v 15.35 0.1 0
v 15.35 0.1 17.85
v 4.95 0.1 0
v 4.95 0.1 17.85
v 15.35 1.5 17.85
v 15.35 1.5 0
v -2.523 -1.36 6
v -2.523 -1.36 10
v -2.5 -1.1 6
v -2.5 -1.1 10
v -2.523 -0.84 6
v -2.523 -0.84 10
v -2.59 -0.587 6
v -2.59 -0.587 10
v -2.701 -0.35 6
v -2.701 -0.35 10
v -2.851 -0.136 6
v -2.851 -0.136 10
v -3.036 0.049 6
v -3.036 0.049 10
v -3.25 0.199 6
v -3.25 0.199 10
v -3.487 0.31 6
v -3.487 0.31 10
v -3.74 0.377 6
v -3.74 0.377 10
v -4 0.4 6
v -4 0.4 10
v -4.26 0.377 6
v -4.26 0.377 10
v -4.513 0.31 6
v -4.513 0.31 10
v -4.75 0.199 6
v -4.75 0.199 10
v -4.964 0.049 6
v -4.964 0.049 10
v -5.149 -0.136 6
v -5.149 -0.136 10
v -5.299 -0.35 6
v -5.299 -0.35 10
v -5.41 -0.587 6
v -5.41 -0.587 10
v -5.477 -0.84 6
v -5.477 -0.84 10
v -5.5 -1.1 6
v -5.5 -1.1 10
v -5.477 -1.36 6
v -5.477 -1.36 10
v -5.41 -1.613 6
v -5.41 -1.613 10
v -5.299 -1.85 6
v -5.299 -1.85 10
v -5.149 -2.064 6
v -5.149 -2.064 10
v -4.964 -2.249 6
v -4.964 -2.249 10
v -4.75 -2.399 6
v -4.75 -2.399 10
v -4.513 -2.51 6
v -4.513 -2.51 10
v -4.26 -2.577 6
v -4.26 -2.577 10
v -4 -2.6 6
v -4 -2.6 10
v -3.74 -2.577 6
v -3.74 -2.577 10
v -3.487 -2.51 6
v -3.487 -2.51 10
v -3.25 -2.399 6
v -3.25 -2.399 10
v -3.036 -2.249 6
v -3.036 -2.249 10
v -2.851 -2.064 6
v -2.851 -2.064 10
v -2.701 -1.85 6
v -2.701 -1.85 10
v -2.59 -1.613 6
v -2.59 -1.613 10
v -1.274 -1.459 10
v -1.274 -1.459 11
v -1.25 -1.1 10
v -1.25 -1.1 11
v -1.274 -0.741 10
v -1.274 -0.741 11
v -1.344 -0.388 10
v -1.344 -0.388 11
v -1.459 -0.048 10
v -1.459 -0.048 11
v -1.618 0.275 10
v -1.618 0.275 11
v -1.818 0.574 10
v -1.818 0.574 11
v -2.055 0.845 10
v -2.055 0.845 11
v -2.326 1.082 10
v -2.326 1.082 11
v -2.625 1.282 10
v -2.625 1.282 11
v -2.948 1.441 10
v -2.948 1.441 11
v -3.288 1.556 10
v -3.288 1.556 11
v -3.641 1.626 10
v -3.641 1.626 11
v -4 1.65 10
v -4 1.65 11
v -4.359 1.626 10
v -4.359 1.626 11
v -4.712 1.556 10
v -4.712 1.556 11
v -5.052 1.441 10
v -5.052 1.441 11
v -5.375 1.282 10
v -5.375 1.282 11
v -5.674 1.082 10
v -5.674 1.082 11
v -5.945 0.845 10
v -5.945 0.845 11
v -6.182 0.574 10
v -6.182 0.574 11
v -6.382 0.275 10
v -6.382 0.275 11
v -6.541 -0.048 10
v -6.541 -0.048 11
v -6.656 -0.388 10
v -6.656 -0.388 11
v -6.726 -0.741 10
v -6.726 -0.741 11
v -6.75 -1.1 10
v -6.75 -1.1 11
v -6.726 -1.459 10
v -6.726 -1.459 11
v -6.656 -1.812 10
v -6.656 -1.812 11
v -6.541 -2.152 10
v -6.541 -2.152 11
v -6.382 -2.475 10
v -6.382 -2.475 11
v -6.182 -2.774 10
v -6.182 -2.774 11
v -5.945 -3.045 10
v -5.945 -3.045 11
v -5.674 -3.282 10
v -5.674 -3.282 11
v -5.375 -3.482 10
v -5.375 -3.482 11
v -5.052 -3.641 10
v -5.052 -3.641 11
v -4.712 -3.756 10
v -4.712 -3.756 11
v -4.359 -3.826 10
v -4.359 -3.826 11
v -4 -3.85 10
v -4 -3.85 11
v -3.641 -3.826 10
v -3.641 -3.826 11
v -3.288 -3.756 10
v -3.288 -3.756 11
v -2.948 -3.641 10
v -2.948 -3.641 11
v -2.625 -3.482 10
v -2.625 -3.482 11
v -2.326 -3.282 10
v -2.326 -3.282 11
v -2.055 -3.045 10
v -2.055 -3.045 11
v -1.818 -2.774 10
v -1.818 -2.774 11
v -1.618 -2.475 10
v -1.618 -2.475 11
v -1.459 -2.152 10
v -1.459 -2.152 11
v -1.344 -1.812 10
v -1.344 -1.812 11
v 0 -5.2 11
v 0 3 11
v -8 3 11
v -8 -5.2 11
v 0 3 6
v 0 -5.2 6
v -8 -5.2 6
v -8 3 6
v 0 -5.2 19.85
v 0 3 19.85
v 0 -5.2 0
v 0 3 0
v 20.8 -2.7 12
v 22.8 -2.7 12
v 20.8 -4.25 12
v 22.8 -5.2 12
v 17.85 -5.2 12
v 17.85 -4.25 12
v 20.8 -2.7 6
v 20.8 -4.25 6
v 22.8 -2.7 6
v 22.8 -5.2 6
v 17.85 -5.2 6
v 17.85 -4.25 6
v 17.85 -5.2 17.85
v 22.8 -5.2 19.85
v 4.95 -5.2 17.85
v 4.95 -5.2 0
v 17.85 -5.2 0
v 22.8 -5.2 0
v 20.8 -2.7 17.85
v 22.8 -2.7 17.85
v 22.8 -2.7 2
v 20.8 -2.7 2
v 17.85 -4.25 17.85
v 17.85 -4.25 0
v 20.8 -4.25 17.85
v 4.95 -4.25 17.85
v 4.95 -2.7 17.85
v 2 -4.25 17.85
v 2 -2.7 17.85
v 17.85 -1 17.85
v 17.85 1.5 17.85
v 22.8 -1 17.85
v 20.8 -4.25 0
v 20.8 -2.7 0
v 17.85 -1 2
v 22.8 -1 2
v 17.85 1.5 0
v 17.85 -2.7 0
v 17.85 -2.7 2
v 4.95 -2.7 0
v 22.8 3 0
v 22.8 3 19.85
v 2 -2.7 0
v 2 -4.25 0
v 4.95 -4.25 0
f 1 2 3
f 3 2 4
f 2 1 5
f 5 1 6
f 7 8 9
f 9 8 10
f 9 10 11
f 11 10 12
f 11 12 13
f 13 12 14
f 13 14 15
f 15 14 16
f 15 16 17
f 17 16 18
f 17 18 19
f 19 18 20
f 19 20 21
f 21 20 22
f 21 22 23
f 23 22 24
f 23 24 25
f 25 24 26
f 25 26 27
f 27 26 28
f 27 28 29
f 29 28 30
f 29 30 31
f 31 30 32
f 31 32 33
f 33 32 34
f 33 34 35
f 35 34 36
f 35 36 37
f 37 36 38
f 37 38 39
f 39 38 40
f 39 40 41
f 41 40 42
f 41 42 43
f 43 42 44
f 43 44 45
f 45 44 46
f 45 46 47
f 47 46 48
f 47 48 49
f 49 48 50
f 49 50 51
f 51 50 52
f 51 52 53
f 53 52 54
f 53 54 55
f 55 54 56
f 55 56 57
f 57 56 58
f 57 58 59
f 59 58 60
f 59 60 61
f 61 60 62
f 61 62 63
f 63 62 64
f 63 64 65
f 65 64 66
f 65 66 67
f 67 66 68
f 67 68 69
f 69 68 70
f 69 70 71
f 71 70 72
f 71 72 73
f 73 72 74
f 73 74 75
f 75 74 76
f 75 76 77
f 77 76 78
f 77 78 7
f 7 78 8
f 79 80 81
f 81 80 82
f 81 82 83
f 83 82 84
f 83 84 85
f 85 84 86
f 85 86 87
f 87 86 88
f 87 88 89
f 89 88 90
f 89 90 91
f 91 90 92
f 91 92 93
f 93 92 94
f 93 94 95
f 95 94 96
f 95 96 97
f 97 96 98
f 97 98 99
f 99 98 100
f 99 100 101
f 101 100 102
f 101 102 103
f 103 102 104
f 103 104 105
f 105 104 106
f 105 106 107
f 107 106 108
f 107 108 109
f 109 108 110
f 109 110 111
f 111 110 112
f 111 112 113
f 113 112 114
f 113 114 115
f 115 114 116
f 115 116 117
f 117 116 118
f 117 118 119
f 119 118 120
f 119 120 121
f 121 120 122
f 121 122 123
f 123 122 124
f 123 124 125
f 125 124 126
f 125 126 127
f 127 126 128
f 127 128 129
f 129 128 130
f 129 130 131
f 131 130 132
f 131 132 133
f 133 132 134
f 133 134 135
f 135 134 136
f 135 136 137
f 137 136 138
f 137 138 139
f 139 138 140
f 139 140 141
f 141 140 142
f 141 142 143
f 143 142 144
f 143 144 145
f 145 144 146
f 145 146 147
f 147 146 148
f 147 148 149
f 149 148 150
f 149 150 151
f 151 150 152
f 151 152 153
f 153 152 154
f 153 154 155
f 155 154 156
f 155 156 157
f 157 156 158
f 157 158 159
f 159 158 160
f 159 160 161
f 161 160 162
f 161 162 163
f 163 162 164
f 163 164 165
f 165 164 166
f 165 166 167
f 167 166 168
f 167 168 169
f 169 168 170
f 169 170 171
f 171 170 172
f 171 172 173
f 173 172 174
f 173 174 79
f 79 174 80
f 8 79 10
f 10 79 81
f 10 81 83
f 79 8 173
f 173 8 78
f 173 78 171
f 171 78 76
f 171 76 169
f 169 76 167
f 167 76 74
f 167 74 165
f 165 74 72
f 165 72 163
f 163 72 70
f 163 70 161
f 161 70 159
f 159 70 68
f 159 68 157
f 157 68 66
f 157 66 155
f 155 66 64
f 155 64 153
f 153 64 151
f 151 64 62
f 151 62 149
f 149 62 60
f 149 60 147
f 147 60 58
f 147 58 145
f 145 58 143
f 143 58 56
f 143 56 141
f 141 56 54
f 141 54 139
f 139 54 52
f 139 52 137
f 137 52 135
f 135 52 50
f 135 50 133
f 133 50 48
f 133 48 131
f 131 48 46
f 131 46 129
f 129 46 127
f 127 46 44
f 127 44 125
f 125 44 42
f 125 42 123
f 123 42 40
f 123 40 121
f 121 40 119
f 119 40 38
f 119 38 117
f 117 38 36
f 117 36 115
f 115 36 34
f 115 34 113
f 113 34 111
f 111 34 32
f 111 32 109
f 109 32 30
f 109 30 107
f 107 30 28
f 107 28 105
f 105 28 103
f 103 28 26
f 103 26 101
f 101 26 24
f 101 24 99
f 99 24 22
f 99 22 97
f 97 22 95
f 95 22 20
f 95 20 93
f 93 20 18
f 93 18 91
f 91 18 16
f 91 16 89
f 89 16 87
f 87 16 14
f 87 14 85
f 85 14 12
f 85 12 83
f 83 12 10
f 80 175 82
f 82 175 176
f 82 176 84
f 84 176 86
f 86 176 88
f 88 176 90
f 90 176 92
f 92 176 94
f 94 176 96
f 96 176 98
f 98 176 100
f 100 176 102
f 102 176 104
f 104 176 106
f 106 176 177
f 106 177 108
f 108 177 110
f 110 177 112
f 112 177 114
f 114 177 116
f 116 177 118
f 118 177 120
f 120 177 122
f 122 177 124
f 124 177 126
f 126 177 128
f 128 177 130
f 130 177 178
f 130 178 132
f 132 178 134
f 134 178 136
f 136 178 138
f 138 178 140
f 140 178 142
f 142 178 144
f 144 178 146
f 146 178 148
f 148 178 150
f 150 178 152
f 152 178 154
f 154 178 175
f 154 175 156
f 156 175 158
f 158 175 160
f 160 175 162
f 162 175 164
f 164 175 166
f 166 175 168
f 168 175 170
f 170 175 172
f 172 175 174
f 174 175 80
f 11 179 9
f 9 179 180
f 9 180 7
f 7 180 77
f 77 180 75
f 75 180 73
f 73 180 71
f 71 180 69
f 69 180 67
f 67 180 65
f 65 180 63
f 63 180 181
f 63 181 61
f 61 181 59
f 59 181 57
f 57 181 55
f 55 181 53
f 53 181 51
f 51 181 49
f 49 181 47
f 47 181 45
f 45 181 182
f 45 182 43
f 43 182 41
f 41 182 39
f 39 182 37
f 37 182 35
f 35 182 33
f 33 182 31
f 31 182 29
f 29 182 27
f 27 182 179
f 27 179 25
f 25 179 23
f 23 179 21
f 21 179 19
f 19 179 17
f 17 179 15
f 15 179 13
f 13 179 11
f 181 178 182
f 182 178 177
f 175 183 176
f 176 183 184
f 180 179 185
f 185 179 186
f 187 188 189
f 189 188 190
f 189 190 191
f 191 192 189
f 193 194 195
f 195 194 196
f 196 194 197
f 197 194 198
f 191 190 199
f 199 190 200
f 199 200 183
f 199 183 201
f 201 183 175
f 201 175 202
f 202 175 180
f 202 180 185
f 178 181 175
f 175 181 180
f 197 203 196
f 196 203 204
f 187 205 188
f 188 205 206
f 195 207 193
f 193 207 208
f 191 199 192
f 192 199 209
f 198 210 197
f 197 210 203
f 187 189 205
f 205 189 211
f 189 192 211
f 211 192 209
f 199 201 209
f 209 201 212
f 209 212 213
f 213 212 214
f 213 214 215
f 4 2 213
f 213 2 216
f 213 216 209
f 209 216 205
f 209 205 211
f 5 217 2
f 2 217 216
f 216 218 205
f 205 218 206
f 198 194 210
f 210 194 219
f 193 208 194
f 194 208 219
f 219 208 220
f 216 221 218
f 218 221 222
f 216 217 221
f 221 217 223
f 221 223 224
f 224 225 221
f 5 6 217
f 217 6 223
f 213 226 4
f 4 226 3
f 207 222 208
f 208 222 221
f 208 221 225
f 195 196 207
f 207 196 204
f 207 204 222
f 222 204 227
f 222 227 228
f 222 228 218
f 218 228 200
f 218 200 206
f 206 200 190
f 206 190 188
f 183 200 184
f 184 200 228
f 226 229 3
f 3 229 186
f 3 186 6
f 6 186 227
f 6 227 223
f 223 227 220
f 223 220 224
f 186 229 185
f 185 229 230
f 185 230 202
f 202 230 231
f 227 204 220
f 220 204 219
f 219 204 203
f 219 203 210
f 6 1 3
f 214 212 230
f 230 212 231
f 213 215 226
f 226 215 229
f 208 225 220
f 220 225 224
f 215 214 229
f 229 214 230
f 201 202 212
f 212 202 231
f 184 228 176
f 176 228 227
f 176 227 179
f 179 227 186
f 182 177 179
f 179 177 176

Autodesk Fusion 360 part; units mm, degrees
sketch "Sketch1" plane through (0, 0, 0) normal (0, 1, 0) x (1, 0, 0)
  line L0 (0, 0) -> (22.8, 0)
  line L1 (22.8, 0) -> (22.8, -19.85)
  line L2 (22.8, -19.85) -> (0, -19.85)
  line L3 (0, -19.85) -> (0, 0)
  dimension "d8" = 19.85
  dimension "d9" = 22.8
extrude "Extrude1" add sketch "Sketch1" along normal blind 3
sketch "Sketch2" plane through (0, 0, 0) normal (0, 1, 0) x (1, 0, 0)
  circle A0 centre (6.5, -15.16) radius 0.875
  circle A1 centre (6.5, -2.5) radius 0.875
  line L0 (0, -19.85) -> (0, 0)
  line L1 (0, 0) -> (22.8, 0)
  dimension "d3" = 1.75
  dimension "d4" = 1.75
  dimension "d5" = 12.66
  dimension "d6" = 6.5
  dimension "d7" = 2.5
sketch "Sketch4" plane through (0, 0, 0) normal (0, -1, 0) x (1, 0, 0)
  line L0 (22.8, 19.85) -> (0, 19.85)
  line L1 (0, 19.85) -> (0, 0)
  line L2 (0, 0) -> (22.8, 0)
  line L3 (22.8, 0) -> (22.8, 19.85)
  line L4 (0, 19.85) -> (4.95, 19.85)
  line L5 (4.95, 19.85) -> (4.95, 0)
  line L6 (4.95, 0) -> (0, 0)
  line L7 (0, 0) -> (0, 19.85)
  line L8 (22.8, 19.85) -> (17.85, 19.85)
  line L9 (17.85, 19.85) -> (17.85, 0)
  line L10 (17.85, 0) -> (22.8, 0)
  line L11 (22.8, 0) -> (22.8, 19.85)
  dimension "d12" = 4.95
  dimension "d13" = 4.95
extrude "Extrude3" add sketch "Sketch4" along normal blind 5.2 contours L0 L2 L3 L8 L9 L10 L11 | L0 L1 L2 L4 L5 L6 L7
sketch "Sketch5" plane through (0, 0, 19.85) normal (0, 0, 1) x (-1, 0, 0)
  line L0 (-22.8, 5.2) -> (-22.8, -3)
  line L1 (-22.8, -3) -> (0, -3)
  line L2 (0, -3) -> (0, 5.2)
  line L3 (0, 5.2) -> (-4.95, 5.2)
  line L4 (-4.95, 5.2) -> (-4.95, 0)
  line L5 (-4.95, 0) -> (-17.85, 0)
  line L6 (-17.85, 0) -> (-17.85, 5.2)
  line L7 (-17.85, 5.2) -> (-22.8, 5.2)
  line L8 (-2, 4.25) -> (-20.8, 4.25)
  line L9 (-20.8, 4.25) -> (-20.8, 2.7)
  line L10 (-20.8, 2.7) -> (-2, 2.7)
  line L11 (-2, 2.7) -> (-2, 4.25)
  dimension "d16" = 2
  dimension "d17" = 2.7
  dimension "d18" = 1.55
  dimension "d19" = 2
extrude "Extrude4" cut sketch "Sketch5" against normal blind 21 contours L4 L6 L8 L10 | L6 L8 L9 L10 | L4 L8 L10 L11
sketch "Sketch6" plane through (0, 0, 0) normal (0, -1, 0) x (1, 0, 0)
  line L0 (17.85, 0) -> (17.85, 19.85)
  line L1 (17.85, 19.85) -> (4.95, 19.85)
  line L2 (4.95, 19.85) -> (4.95, 0)
  line L3 (4.95, 0) -> (17.85, 0)
  line L4 (17.85, 19.85) -> (15.35, 19.85)
  line L5 (15.35, 19.85) -> (15.35, 0)
  line L6 (15.35, 0) -> (17.85, 0)
  line L7 (17.85, 0) -> (17.85, 19.85)
  dimension "d22" = 2.5
extrude "Extrude5" cut sketch "Sketch6" against normal blind 1.5 contours L0 L1 L3 L4 L5 L6 L7
sketch "Sketch7" plane through (17.85, 0, 0) normal (-1, 0, 0) x (0, -1, 0)
  line L0 (2.7, 0) -> (2.7, 19.85)
  line L1 (2.7, 19.85) -> (-1.5, 19.85)
  line L2 (-1.5, 19.85) -> (-1.5, 0)
  line L3 (-1.5, 0) -> (2.7, 0)
  line L4 (2.7, 19.85) -> (1, 19.85)
  line L5 (1, 19.85) -> (1, 2)
  line L6 (1, 2) -> (2.7, 2)
  line L7 (2.7, 2) -> (2.7, 19.85)
  dimension "d25" = 2.5
  dimension "d26" = 2
  dimension "d27" = 1.7
extrude "Extrude6" cut sketch "Sketch7" against normal blind 13 contours L0 L1 L4 L5 L6 L7
sketch "Sketch8" plane through (0, -5.2, 0) normal (0, -1, 0) x (1, 0, 0)
  line L0 (0, 0) -> (4.95, 0)
  line L1 (4.95, 0) -> (4.95, 19.85)
  line L2 (4.95, 19.85) -> (0, 19.85)
  line L3 (0, 19.85) -> (0, 0)
  line L4 (0, 19.85) -> (22.8, 19.85)
  line L5 (22.8, 19.85) -> (22.8, 17.85)
  line L6 (22.8, 17.85) -> (0, 17.85)
  line L7 (0, 17.85) -> (0, 19.85)
  dimension "d30" = 2
  dimension "d31" = 22.8
extrude "Extrude7" add sketch "Sketch8" against normal blind 8 contours L1 L2 L3 L4 L6 L7 | L1 L4 L5 L6
sketch "Sketch9" plane through (0, -5.2, 0) normal (0, -1, 0) x (1, 0, 0)
  line L0 (17.85, 17.85) -> (17.85, 0)
  line L1 (17.85, 0) -> (22.8, 0)
  line L2 (22.8, 0) -> (22.8, 19.85)
  line L3 (22.8, 19.85) -> (0, 19.85)
  line L4 (0, 19.85) -> (0, 0)
  line L5 (0, 0) -> (4.95, 0)
  line L6 (4.95, 0) -> (4.95, 17.85)
  line L7 (4.95, 17.85) -> (17.85, 17.85)
  line L8 (17.85, 6) -> (22.8, 6)
  line L9 (22.8, 6) -> (22.8, 12)
  line L10 (22.8, 12) -> (17.85, 12)
  line L11 (17.85, 12) -> (17.85, 6)
  dimension "d34" = 6
  dimension "d35" = 6
extrude "Extrude8" cut sketch "Sketch9" against normal blind 3 contours L0 L2 L8 L9 L10 L11
sketch "Sketch10" plane through (0, 0, 0) normal (-1, 0, 0) x (0, -1, 0)
  line L0 (5.2, 19.85) -> (-3, 19.85)
  line L1 (-3, 19.85) -> (-3, 0)
  line L2 (-3, 0) -> (5.2, 0)
  line L3 (5.2, 0) -> (5.2, 19.85)
  line L4 (-3, 11) -> (5.2, 11)
  line L5 (5.2, 11) -> (5.2, 6)
  line L6 (5.2, 6) -> (-3, 6)
  line L7 (-3, 6) -> (-3, 11)
  dimension "d38" = 5
  dimension "d39" = 6
extrude "Extrude9" add sketch "Sketch10" along normal blind 8 contours L1 L3 L4 L5 L6 L7
sketch "Sketch11" plane through (0, 0, 11) normal (0, 0, 1) x (-1, 0, 0)
  line L0 (0, 5.2) -> (0, -3)
  line L1 (0, -3) -> (8, -3)
  line L2 (8, -3) -> (8, 5.2)
  line L3 (8, 5.2) -> (0, 5.2)
  circle A0 centre (4, 1.1) radius 2.75
  dimension "d42" = 4.1
  dimension "d43" = 4
  dimension "d44" = 5.5
extrude "Extrude10" cut sketch "Sketch11" against normal blind 1 contours A0
sketch "Sketch12" plane through (0, 0, 10) normal (0, 0, 1) x (-1, 0, 0)
  circle A0 centre (4, 1.1) radius 2.75
  circle A1 centre (4, 1.1) radius 1.5
  dimension "d47" = 3
extrude "Extrude11" cut sketch "Sketch12" against normal blind 4 contours A1
sketch "Sketch13" plane through (0, 0, 0) normal (0, -1, 0) x (1, 0, 0)
  line L0 (15.35, 17.85) -> (4.95, 17.85)
  line L1 (4.95, 17.85) -> (4.95, 0)
  line L2 (4.95, 0) -> (15.35, 0)
  line L3 (15.35, 0) -> (15.35, 17.85)
  line L4 (15.35, 17.85) -> (4.95, 17.85)
  line L5 (4.95, 17.85) -> (4.95, 0)
  line L6 (4.95, 0) -> (15.35, 0)
  line L7 (15.35, 0) -> (15.35, 17.85)
extrude "Extrude12" cut sketch "Sketch13" against normal blind 0.1
equation "d14 = 2.5 mm + 2.7 mm"
